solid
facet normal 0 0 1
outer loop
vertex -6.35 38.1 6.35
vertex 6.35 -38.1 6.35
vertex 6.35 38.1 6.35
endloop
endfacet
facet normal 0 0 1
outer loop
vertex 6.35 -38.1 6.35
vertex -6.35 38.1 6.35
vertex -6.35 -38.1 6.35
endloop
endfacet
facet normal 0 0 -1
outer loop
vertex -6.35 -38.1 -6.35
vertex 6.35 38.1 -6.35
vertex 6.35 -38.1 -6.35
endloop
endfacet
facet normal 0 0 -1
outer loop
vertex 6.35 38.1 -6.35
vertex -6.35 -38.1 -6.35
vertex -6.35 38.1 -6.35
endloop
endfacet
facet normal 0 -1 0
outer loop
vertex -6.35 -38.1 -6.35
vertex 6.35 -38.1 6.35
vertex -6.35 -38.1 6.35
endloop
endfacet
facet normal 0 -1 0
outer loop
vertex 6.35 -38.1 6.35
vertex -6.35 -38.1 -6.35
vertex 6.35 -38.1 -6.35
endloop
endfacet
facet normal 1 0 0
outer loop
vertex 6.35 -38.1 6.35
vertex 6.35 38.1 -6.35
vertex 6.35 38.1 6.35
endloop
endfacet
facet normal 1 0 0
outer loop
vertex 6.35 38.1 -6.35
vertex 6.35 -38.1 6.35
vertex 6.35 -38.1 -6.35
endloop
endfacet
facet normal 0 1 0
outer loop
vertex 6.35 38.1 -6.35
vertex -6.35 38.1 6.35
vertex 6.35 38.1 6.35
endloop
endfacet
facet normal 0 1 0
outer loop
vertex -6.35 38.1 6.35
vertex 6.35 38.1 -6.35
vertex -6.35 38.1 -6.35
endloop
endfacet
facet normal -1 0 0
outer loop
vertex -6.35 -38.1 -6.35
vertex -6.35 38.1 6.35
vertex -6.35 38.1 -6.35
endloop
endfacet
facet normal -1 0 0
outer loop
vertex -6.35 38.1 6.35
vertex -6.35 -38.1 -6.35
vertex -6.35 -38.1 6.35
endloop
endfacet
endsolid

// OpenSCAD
// ========================================
// a 0.5 by 3 by 0.5 inch box
// NeuroCAD canonical IR; dimensions are millimetres
// ========================================
$fn = 48;

cube(size=[12.7, 76.2, 12.7], center=true);
